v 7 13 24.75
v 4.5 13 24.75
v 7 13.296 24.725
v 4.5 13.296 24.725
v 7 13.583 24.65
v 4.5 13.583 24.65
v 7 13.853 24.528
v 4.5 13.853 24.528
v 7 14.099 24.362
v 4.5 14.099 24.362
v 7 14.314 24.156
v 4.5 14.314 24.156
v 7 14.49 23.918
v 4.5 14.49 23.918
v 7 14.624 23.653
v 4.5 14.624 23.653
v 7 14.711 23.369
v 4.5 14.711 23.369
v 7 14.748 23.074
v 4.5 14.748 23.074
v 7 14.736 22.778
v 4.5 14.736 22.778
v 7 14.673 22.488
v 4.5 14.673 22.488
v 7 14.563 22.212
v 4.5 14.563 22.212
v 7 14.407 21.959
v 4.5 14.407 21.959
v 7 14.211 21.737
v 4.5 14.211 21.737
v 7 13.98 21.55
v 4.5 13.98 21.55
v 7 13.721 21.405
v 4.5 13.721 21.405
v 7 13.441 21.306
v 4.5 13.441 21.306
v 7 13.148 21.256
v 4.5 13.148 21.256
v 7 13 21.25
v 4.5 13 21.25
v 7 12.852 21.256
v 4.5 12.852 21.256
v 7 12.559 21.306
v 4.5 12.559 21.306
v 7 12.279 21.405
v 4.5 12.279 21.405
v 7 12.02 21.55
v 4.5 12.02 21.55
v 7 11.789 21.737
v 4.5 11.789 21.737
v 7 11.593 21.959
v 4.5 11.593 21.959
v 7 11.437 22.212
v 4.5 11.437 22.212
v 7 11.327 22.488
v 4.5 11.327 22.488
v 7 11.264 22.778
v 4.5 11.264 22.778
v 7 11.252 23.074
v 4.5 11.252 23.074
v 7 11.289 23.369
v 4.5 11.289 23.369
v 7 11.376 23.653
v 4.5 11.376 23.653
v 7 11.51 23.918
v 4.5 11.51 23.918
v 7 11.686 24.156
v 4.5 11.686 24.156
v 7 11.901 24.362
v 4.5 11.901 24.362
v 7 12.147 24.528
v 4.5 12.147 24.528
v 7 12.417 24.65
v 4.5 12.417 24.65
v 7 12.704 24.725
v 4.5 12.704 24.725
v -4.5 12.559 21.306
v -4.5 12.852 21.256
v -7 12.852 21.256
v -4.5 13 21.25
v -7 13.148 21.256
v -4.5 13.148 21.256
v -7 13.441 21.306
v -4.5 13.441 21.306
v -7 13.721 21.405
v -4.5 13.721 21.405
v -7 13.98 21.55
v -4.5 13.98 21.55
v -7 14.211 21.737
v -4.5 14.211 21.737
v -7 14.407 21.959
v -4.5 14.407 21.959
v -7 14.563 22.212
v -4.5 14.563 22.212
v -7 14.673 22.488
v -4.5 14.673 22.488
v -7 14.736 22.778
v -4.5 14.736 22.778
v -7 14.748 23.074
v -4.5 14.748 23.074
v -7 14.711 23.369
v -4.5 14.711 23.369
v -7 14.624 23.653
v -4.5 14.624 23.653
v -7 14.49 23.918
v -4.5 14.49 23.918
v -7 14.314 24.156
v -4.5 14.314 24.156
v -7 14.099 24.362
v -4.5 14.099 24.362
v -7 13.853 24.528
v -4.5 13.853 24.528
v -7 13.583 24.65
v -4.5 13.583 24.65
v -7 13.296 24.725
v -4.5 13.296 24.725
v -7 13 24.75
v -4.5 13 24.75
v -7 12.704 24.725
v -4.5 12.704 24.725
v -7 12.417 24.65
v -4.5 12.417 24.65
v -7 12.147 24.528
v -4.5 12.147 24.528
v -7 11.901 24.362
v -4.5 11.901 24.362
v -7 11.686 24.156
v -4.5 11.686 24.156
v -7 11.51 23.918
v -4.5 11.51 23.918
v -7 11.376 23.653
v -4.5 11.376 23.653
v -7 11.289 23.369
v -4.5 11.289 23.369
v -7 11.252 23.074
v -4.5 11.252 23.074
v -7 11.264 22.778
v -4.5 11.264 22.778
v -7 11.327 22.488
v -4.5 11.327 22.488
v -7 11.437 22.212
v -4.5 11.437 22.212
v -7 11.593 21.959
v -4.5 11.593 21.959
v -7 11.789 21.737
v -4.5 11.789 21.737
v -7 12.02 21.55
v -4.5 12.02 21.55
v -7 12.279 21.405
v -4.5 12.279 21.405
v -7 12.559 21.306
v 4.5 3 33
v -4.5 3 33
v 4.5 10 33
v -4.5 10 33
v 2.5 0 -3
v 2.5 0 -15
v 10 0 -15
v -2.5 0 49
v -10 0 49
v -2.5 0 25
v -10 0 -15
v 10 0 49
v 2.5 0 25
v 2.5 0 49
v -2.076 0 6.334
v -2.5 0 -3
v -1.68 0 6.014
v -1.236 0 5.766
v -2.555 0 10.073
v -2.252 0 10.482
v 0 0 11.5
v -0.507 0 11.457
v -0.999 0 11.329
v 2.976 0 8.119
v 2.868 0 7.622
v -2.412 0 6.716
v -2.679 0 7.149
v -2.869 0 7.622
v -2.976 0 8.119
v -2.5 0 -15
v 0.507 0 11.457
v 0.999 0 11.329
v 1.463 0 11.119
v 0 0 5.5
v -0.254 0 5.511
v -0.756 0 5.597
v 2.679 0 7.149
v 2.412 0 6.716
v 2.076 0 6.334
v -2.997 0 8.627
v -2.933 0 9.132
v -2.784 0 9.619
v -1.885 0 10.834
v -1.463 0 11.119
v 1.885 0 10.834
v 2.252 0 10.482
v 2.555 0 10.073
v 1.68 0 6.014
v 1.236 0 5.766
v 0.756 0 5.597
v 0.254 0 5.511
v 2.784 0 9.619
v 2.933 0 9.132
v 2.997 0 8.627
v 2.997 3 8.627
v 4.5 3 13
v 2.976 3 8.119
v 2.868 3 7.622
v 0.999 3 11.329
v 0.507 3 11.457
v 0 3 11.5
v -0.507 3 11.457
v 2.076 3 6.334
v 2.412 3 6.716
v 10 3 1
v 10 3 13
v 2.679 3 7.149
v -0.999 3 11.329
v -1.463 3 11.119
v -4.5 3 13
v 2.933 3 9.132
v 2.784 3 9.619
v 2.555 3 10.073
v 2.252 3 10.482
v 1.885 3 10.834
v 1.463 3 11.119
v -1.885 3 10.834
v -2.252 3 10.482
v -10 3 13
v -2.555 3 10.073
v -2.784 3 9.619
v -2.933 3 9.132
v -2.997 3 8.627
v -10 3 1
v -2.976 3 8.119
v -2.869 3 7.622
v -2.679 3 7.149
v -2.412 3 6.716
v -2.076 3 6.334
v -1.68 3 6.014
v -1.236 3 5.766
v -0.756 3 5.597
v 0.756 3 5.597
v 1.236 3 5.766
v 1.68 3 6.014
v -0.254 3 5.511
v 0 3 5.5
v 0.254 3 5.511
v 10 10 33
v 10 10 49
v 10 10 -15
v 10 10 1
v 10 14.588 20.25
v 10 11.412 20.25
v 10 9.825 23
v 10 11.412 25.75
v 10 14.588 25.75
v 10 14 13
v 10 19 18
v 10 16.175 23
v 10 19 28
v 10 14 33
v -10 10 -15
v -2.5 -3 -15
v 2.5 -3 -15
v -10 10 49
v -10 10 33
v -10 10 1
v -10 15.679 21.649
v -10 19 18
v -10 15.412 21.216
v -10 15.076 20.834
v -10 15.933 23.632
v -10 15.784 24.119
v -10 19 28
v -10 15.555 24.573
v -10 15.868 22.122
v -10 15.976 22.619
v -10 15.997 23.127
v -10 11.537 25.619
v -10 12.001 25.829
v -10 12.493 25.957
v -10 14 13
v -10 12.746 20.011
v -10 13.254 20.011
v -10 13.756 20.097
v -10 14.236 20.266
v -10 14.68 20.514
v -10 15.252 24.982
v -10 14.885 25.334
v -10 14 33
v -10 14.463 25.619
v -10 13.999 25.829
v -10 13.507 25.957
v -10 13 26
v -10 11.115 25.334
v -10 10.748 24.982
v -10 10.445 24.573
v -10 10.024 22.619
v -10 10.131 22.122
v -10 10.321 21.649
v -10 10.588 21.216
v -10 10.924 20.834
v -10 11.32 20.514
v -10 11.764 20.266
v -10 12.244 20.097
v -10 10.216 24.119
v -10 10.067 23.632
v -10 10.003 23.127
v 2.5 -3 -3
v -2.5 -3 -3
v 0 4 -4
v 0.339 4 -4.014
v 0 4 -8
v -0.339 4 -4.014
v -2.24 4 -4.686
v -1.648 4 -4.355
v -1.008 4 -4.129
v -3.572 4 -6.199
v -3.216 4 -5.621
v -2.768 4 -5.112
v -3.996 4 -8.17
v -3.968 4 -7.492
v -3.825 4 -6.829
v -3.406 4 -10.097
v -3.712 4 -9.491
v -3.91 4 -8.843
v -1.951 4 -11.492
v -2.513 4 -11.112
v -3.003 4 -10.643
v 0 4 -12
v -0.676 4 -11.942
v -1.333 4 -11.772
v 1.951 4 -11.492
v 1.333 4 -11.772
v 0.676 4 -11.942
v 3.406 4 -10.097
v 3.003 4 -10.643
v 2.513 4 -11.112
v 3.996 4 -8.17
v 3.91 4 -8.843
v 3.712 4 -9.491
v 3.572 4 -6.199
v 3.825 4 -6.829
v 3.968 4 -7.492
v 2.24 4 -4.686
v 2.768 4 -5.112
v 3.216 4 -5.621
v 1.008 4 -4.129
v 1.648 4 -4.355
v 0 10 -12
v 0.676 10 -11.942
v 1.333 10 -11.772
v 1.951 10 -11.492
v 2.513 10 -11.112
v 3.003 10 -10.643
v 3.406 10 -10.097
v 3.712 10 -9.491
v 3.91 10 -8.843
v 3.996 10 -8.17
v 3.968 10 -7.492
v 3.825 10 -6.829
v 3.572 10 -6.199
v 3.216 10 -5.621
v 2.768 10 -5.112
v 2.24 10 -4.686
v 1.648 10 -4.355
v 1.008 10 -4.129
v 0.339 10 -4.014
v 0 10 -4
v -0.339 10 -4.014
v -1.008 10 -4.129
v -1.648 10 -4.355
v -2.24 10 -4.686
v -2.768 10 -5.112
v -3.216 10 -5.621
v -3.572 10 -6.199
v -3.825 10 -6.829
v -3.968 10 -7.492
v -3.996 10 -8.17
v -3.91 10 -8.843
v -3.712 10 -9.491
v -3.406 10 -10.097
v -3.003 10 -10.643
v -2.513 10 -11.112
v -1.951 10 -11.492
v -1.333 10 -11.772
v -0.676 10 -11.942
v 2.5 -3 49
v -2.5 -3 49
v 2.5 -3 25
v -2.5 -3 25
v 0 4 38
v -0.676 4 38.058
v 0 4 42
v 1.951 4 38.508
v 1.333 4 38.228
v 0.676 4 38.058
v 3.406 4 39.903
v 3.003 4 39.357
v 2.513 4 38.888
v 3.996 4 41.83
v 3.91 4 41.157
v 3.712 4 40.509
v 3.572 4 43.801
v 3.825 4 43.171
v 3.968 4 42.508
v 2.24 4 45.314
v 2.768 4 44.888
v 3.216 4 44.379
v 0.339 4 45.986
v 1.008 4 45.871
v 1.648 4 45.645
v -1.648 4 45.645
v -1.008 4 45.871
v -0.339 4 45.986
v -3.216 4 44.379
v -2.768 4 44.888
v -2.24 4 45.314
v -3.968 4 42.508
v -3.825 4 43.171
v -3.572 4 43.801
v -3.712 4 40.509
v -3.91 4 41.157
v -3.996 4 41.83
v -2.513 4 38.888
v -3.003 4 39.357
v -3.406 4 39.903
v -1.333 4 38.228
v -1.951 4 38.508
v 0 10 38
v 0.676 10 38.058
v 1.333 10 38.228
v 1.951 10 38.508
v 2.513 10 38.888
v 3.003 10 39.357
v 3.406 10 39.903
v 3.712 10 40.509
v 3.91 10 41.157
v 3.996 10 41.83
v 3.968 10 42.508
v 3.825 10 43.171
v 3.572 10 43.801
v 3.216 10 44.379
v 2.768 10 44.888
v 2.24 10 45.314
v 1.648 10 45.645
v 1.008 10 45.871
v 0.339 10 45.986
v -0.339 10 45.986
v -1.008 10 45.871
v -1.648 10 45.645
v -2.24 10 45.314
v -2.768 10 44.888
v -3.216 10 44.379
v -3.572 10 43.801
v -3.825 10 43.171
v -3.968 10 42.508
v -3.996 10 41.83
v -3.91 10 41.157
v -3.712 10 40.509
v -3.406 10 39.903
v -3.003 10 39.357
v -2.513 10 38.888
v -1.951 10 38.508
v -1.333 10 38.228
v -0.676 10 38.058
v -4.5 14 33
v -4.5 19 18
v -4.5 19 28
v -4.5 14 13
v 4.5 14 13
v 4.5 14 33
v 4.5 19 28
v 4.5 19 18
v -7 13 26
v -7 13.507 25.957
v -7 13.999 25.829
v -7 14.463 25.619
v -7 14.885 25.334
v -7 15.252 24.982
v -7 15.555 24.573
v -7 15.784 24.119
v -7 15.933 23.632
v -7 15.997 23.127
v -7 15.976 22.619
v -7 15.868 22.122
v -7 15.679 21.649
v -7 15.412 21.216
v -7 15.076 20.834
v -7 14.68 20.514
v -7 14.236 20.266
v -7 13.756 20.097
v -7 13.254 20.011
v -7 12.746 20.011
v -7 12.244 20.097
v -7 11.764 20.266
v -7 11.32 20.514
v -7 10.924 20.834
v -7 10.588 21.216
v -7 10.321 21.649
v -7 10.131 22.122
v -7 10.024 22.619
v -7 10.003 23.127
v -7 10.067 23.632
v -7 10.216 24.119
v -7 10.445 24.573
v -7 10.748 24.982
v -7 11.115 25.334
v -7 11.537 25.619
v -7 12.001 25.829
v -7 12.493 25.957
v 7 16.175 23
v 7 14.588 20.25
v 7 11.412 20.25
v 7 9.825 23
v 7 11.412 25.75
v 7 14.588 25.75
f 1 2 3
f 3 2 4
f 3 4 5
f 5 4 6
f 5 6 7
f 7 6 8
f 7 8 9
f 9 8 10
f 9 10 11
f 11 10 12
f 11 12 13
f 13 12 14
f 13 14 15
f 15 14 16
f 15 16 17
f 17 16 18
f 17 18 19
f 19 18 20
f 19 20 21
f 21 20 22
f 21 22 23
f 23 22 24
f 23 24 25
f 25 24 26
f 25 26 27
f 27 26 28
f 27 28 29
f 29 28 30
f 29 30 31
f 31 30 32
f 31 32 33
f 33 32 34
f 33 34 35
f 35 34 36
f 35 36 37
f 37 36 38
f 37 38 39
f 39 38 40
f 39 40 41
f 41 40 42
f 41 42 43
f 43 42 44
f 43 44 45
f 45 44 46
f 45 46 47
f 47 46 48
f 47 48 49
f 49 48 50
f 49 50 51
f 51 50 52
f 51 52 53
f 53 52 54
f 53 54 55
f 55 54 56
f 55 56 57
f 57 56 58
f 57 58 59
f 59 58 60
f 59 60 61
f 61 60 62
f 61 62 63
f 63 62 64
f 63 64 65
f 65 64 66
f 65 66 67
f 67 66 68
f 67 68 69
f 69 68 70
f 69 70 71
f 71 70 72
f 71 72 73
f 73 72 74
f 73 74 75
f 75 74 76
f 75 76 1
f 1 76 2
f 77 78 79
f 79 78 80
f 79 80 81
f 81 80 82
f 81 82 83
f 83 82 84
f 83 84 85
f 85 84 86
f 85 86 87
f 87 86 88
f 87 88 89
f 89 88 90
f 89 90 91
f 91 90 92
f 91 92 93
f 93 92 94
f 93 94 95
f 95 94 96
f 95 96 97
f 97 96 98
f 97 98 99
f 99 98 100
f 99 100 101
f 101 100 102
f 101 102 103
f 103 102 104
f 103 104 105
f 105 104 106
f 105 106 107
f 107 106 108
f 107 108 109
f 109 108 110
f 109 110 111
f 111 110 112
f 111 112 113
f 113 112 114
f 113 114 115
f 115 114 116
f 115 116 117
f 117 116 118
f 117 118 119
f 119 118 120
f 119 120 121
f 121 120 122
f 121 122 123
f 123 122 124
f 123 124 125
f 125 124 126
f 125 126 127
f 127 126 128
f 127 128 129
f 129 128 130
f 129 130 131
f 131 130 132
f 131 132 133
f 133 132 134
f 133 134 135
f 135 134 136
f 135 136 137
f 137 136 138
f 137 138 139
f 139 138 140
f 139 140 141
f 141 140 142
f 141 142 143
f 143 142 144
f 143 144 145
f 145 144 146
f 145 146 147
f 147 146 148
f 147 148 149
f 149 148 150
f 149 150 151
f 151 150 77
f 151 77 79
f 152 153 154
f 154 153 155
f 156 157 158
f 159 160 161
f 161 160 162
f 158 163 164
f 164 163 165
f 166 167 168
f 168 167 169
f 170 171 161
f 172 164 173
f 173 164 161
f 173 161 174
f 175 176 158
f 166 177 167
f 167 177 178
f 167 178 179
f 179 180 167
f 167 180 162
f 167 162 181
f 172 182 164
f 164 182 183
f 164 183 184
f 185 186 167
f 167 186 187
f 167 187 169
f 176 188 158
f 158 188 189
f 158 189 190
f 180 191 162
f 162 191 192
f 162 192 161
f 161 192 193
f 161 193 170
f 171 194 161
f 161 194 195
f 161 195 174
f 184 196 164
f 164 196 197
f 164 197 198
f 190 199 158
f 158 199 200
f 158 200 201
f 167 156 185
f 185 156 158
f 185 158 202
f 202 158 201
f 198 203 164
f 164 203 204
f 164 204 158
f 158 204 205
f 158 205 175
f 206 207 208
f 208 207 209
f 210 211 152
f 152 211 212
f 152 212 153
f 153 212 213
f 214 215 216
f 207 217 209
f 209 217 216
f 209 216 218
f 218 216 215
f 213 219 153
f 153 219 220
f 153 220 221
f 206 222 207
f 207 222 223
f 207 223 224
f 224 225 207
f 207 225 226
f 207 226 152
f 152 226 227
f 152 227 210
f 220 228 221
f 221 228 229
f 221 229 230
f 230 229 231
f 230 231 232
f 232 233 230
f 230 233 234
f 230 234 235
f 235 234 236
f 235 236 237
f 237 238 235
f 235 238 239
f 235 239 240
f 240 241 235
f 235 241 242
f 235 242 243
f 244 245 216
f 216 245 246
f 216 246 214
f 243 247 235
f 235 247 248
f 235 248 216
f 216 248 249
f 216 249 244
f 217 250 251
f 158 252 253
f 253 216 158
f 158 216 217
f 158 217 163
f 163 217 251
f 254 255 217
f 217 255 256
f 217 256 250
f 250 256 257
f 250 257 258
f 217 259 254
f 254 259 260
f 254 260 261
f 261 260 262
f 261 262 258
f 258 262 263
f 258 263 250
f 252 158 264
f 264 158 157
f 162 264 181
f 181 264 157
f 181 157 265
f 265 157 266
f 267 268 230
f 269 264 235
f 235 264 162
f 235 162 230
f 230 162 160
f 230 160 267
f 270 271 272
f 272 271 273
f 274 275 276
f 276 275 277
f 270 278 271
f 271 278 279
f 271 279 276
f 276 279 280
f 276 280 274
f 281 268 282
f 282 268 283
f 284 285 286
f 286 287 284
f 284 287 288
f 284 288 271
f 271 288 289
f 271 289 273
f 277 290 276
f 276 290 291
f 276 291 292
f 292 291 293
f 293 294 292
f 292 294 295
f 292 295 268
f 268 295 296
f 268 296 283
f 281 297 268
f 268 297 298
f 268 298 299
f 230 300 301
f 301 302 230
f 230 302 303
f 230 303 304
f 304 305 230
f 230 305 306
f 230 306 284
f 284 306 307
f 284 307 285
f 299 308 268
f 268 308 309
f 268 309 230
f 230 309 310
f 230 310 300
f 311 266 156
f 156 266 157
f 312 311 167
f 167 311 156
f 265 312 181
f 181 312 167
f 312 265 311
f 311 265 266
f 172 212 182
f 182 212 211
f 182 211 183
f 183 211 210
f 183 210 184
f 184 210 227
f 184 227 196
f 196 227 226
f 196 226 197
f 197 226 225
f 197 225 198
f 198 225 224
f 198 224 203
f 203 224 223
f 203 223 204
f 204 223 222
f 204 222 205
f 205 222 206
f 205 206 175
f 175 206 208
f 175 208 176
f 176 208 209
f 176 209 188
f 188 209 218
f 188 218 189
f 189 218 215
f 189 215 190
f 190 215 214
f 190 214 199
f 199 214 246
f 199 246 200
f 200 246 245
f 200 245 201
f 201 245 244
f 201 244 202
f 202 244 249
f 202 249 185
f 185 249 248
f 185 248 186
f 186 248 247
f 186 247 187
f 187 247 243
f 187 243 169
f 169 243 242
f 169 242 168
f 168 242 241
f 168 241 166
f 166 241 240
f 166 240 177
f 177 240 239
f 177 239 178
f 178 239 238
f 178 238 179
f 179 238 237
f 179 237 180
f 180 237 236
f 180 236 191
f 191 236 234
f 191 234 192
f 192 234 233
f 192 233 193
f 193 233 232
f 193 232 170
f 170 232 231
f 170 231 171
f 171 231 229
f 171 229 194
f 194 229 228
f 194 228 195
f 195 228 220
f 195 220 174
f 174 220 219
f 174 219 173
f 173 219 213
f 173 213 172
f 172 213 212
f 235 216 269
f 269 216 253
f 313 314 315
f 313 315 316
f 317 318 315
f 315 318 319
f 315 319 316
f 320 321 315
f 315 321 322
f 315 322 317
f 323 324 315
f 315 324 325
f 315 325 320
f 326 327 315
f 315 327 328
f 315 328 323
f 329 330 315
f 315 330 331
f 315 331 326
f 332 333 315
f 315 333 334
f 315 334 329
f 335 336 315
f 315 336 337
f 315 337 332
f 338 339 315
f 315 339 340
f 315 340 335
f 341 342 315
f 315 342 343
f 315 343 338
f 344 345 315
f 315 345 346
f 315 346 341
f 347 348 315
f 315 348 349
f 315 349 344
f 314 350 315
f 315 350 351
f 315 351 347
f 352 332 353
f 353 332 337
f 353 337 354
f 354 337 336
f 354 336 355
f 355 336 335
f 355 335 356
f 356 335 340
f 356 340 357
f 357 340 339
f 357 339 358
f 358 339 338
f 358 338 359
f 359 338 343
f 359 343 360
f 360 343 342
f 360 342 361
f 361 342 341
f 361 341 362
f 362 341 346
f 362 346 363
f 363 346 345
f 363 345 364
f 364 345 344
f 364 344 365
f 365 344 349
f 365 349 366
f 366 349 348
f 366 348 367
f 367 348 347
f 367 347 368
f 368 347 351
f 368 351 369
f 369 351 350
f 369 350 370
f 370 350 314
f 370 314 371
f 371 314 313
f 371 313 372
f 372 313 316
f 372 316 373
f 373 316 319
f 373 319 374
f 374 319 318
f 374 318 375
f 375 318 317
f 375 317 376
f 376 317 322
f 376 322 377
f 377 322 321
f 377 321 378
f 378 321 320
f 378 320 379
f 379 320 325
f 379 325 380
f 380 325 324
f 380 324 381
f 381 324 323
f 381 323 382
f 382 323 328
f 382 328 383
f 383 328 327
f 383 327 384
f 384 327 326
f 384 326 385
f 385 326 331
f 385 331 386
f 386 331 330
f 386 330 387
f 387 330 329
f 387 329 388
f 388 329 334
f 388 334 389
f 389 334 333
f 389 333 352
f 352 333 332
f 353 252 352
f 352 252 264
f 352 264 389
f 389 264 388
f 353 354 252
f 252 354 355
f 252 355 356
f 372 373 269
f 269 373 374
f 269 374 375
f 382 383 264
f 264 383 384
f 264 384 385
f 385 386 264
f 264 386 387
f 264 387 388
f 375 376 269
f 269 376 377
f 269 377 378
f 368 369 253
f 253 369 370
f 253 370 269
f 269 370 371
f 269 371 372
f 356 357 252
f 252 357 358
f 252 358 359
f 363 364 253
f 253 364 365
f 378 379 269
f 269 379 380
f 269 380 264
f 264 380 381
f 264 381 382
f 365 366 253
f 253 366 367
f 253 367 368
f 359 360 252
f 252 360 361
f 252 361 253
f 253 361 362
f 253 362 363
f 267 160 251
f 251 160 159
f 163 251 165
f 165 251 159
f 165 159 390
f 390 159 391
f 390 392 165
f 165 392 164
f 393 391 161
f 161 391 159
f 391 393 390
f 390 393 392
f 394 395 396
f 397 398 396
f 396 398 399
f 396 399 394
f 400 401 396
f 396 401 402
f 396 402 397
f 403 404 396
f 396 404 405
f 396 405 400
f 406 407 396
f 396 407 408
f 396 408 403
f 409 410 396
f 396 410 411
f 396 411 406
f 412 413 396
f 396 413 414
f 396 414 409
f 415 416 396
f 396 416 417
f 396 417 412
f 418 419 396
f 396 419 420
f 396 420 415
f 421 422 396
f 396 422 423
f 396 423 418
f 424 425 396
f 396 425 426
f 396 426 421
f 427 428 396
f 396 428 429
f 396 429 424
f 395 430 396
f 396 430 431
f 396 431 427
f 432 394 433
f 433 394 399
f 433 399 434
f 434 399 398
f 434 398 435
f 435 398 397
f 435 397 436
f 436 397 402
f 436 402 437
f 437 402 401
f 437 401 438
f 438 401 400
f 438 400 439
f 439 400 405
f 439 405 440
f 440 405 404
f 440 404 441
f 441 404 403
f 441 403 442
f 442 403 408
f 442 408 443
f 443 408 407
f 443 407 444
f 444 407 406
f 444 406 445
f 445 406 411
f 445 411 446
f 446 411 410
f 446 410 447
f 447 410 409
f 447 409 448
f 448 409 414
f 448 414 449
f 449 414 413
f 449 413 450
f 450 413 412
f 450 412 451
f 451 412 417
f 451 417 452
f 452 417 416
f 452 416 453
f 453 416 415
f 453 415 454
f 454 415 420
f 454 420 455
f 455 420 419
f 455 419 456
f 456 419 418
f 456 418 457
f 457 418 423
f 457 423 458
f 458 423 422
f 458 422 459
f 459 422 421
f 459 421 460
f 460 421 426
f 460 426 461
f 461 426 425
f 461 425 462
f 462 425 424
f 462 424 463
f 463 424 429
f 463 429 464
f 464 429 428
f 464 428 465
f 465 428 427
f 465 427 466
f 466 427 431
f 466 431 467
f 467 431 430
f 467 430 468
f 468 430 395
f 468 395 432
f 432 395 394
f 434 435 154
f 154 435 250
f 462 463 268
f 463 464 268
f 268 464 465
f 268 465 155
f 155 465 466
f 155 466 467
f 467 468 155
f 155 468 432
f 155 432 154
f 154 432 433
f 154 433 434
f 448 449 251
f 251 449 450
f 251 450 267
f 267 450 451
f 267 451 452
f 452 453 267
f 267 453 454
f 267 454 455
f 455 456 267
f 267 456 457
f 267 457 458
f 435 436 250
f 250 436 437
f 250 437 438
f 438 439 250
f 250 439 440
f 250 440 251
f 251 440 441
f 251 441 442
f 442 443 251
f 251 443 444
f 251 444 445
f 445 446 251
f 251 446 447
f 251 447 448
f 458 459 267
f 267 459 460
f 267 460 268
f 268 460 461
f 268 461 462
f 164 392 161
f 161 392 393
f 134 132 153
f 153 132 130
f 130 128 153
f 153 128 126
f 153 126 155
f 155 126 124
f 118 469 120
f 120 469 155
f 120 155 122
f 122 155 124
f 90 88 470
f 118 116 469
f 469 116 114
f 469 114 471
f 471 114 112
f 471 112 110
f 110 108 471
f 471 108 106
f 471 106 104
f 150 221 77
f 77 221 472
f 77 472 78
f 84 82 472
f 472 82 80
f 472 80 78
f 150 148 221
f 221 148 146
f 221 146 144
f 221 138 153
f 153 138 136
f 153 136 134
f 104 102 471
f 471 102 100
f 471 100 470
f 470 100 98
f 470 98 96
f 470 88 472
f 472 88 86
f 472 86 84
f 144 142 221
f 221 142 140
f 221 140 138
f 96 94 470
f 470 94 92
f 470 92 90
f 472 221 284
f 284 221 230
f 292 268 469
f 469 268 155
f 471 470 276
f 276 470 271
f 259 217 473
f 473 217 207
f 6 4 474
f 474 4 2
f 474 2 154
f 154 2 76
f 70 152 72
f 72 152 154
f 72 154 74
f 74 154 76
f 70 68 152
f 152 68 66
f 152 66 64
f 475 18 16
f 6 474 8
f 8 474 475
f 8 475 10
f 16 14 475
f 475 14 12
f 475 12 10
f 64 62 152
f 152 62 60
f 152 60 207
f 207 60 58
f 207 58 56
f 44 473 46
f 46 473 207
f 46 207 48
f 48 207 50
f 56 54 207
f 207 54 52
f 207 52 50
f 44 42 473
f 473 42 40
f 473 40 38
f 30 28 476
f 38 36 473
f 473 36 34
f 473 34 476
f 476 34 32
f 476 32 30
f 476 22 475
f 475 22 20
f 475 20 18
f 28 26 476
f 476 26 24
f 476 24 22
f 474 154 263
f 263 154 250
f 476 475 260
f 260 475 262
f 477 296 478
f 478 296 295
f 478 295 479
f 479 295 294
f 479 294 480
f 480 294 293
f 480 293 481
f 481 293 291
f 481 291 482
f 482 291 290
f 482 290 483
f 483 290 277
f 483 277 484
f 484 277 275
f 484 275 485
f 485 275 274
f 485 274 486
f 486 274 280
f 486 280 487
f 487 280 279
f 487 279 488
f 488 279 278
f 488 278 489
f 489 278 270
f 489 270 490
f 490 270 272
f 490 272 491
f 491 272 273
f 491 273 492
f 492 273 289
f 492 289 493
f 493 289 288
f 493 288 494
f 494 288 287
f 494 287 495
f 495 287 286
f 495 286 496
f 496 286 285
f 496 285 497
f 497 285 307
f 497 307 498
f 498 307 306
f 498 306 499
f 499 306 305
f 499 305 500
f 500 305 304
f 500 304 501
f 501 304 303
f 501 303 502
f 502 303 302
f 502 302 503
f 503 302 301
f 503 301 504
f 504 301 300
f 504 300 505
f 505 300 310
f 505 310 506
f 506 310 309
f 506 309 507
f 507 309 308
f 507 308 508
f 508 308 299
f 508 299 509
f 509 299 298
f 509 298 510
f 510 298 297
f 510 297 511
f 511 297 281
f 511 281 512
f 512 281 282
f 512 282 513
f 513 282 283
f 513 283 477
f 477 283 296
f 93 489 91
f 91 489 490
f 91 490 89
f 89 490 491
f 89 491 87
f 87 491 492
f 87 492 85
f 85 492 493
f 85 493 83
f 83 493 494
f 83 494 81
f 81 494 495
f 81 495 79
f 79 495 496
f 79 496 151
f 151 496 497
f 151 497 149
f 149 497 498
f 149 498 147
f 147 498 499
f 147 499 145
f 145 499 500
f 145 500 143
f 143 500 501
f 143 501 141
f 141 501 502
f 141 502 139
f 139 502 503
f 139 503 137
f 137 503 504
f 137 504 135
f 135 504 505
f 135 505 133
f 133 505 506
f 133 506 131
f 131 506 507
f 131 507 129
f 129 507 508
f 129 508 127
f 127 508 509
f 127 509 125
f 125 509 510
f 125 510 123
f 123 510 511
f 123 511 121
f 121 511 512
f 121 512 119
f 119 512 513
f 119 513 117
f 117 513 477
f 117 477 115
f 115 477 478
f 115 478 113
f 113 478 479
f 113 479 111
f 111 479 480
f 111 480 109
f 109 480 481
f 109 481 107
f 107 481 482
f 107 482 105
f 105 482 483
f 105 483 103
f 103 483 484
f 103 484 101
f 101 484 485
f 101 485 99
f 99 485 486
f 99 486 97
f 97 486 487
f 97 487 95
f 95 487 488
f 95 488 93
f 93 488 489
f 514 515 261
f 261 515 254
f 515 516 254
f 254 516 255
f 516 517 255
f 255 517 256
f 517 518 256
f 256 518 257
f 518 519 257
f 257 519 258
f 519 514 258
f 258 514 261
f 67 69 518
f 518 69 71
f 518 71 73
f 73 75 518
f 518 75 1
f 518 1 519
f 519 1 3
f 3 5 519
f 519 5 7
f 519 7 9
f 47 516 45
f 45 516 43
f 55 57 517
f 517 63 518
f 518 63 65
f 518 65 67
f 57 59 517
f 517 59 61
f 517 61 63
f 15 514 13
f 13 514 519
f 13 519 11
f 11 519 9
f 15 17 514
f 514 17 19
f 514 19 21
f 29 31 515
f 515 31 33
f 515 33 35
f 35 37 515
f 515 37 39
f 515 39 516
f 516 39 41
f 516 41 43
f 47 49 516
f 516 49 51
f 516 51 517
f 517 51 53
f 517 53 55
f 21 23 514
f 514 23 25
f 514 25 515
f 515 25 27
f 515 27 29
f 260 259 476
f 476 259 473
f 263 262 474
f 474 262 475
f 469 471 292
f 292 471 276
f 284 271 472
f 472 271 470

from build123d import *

# Parameters (mm, degrees)
SKETCH1_W               = 20
SKETCH1_H               = 30
BOSS_EXTRUDE1_DEPTH     = 3
SKETCH2_W               = 5
SKETCH2_H               = 12
BOSS_EXTRUDE2_DEPTH     = 3
SKETCH3_R               = 7
SKETCH3_R_2             = 4
BOSS_EXTRUDE3_DEPTH     = 7
SKETCH4_R               = 4
BOSS_EXTRUDE4_DEPTH     = 1
CUT_EXTRUDE1_DEPTH      = 20.339079606
CUT_EXTRUDE1_DEPTH_BACK = 20.339079606
SKETCH5_R               = 3
SKETCH6_R               = 7
SKETCH6_R_2             = 4
BOSS_EXTRUDE6_DEPTH     = 7
SKETCH7_W               = 20
SKETCH7_H               = 3
BOSS_EXTRUDE7_DEPTH     = 19
SKETCH8_W               = 5
SKETCH8_H               = 3
BOSS_EXTRUDE8_DEPTH     = 12
SKETCH10_W              = 5.5
SKETCH10_H              = 20
BOSS_EXTRUDE9_DEPTH     = 16
CUT_EXTRUDE2_DEPTH      = 57.231663678
CUT_EXTRUDE2_DEPTH_BACK = 57.231663678
SKETCH11_R              = 1.75
SKETCH12_R              = 3
SKETCH12_R_2            = 1.75
CUT_EXTRUDE3_DEPTH      = 3
CUT_EXTRUDE4_START      = -3
SKETCH13_R              = 1.75
CUT_EXTRUDE4_DEPTH      = 3
CHAMFER2_SIZE           = 5


with BuildPart() as part:
    # Sketch1 → Boss-Extrude1 (new body)
    with BuildSketch(Plane(origin=(0, 0, 0), x_dir=(1, 0, 0), z_dir=(0, 1, 0))):
        Rectangle(SKETCH1_W, SKETCH1_H)
    boss_extrude1 = extrude(amount=BOSS_EXTRUDE1_DEPTH)

    # Sketch2 → Boss-Extrude2 (add)
    with BuildSketch(Plane.XZ):
        with Locations((0, -9)):
            Rectangle(SKETCH2_W, SKETCH2_H)
    boss_extrude2 = extrude(amount=BOSS_EXTRUDE2_DEPTH)

    # Sketch3 → Boss-Extrude3 (add)
    with BuildSketch(Plane(origin=(0, 3, 0), x_dir=(1, 0, 0), z_dir=(0, 1, 0))):
        with Locations(Location((0, 8, 0), (0, 0, 90))):
            Circle(SKETCH3_R)
        with Locations(Location((0, 8, 0), (0, 0, 270))):
            Circle(SKETCH3_R_2, mode=Mode.SUBTRACT)
    boss_extrude3 = extrude(amount=BOSS_EXTRUDE3_DEPTH)

    # Sketch4 → Boss-Extrude4 (add)
    with BuildSketch(Plane(origin=(0, 3, 0), x_dir=(1, 0, 0), z_dir=(0, 1, 0))):
        with Locations(Location((0, 8, 0), (0, 0, 270))):
            Circle(SKETCH4_R)
    boss_extrude4 = extrude(amount=BOSS_EXTRUDE4_DEPTH)

    # Sketch5 → Cut-Extrude1 (cut, two sides: drawn at the far end of the back side and taken through both)
    with BuildSketch(Plane(origin=(0, 3, 0), x_dir=(1, 0, 0), z_dir=(0, 1, 0)).offset(-CUT_EXTRUDE1_DEPTH_BACK)):
        with Locations(Location((0, -8.5, 0), (0, 0, 90))):
            Circle(SKETCH5_R)
    extrude(amount=CUT_EXTRUDE1_DEPTH + CUT_EXTRUDE1_DEPTH_BACK, mode=Mode.SUBTRACT)

    # Sketch6 → Boss-Extrude6 (add)
    # profile 1 of 2: a face of its own
    with BuildSketch(Plane(origin=(0, 3, 0), x_dir=(1, 0, 0), z_dir=(0, 1, 0))):
        Polygon((0, 15), (-10, 15), (-10, -1), (10, -1), (10, 15), align=None)
        with BuildLine():
            ThreePointArc((7, 8), (-4.949747468, 3.050252532), (0, 15))
            ThreePointArc((0, 15), (4.949747468, 12.949747468), (7, 8))
        make_face(mode=Mode.SUBTRACT)
    # profile 2 of 2: a face of its own
    with BuildSketch(Plane(origin=(0, 3, 0), x_dir=(1, 0, 0), z_dir=(0, 1, 0))):
        with Locations((0, 8)):
            Circle(SKETCH6_R)
        with Locations(Location((0, 8, 0), (0, 0, 270))):
            Circle(SKETCH6_R_2, mode=Mode.SUBTRACT)
    boss_extrude6 = extrude(amount=BOSS_EXTRUDE6_DEPTH)

    # Sketch7 → Boss-Extrude7 (add)
    with BuildSketch(Plane.XY.offset(15)):
        with Locations((0, 1.5)):
            Rectangle(SKETCH7_W, SKETCH7_H)
    extrude(amount=BOSS_EXTRUDE7_DEPTH)

    # Mirror3: Boss-Extrude1, Boss-Extrude2, Boss-Extrude3, Boss-Extrude4, Boss-Extrude6 across plane
    add(boss_extrude1.mirror(Plane.XY.offset(17)))
    add(boss_extrude2.mirror(Plane.XY.offset(17)))
    add(boss_extrude3.mirror(Plane.XY.offset(17)))
    add(boss_extrude4.mirror(Plane.XY.offset(17)))
    add(boss_extrude6.mirror(Plane.XY.offset(17)))

    # Sketch8 → Boss-Extrude8 (add)
    with BuildSketch(Plane(origin=(0, 0, 37), x_dir=(-1, 0, 0), z_dir=(0, 0, -1))):
        with Locations((0, -1.5)):
            Rectangle(SKETCH8_W, SKETCH8_H)
    extrude(amount=BOSS_EXTRUDE8_DEPTH)

    # Sketch10 → Boss-Extrude9 (add)
    with BuildSketch(Plane(origin=(0, 3, 0), x_dir=(1, 0, 0), z_dir=(0, 1, 0))):
        with Locations((-7.25, -23)):
            Rectangle(SKETCH10_W, SKETCH10_H)
        with Locations((7.25, -23)):
            Rectangle(SKETCH10_W, SKETCH10_H)
    extrude(amount=BOSS_EXTRUDE9_DEPTH)

    # Sketch11 → Cut-Extrude2 (cut, two sides: drawn at the far end of the back side and taken through both)
    with BuildSketch(Plane.ZY.offset(10).offset(-CUT_EXTRUDE2_DEPTH_BACK)):
        with Locations((23, 13)):
            Circle(SKETCH11_R)
    extrude(amount=CUT_EXTRUDE2_DEPTH + CUT_EXTRUDE2_DEPTH_BACK, mode=Mode.SUBTRACT)

    # Sketch12 → Cut-Extrude3 (cut)
    with BuildSketch(Plane.ZY.offset(10)):
        with Locations((23, 13)):
            Circle(SKETCH12_R)
        with Locations((23, 13)):
            Circle(SKETCH12_R_2, mode=Mode.SUBTRACT)
    extrude(amount=-CUT_EXTRUDE3_DEPTH, mode=Mode.SUBTRACT)

    # Sketch13 → Cut-Extrude4 (cut)
    with BuildSketch(Plane(origin=(10, 0, 0), x_dir=(0, 0, -1), z_dir=(1, 0, 0)).offset(CUT_EXTRUDE4_START)):
        Polygon((-23, 16.175426481), (-25.75, 14.58771324), (-25.75, 11.41228676), (-23, 9.824573519), (-20.25, 11.41228676), (-20.25, 14.58771324), align=None)
        with Locations((-23, 13)):
            Circle(SKETCH13_R, mode=Mode.SUBTRACT)
    extrude(amount=CUT_EXTRUDE4_DEPTH, mode=Mode.SUBTRACT)

    # Chamfer2
    chamfer2_edges = [part.edges().sort_by_distance(p)[0] for p in [
        (-7.25, 19, 13),
        (-7.25, 19, 33),
        (7.25, 19, 13),
        (7.25, 19, 33),
    ]]
    chamfer(chamfer2_edges, length=CHAMFER2_SIZE)


solid = part.part
